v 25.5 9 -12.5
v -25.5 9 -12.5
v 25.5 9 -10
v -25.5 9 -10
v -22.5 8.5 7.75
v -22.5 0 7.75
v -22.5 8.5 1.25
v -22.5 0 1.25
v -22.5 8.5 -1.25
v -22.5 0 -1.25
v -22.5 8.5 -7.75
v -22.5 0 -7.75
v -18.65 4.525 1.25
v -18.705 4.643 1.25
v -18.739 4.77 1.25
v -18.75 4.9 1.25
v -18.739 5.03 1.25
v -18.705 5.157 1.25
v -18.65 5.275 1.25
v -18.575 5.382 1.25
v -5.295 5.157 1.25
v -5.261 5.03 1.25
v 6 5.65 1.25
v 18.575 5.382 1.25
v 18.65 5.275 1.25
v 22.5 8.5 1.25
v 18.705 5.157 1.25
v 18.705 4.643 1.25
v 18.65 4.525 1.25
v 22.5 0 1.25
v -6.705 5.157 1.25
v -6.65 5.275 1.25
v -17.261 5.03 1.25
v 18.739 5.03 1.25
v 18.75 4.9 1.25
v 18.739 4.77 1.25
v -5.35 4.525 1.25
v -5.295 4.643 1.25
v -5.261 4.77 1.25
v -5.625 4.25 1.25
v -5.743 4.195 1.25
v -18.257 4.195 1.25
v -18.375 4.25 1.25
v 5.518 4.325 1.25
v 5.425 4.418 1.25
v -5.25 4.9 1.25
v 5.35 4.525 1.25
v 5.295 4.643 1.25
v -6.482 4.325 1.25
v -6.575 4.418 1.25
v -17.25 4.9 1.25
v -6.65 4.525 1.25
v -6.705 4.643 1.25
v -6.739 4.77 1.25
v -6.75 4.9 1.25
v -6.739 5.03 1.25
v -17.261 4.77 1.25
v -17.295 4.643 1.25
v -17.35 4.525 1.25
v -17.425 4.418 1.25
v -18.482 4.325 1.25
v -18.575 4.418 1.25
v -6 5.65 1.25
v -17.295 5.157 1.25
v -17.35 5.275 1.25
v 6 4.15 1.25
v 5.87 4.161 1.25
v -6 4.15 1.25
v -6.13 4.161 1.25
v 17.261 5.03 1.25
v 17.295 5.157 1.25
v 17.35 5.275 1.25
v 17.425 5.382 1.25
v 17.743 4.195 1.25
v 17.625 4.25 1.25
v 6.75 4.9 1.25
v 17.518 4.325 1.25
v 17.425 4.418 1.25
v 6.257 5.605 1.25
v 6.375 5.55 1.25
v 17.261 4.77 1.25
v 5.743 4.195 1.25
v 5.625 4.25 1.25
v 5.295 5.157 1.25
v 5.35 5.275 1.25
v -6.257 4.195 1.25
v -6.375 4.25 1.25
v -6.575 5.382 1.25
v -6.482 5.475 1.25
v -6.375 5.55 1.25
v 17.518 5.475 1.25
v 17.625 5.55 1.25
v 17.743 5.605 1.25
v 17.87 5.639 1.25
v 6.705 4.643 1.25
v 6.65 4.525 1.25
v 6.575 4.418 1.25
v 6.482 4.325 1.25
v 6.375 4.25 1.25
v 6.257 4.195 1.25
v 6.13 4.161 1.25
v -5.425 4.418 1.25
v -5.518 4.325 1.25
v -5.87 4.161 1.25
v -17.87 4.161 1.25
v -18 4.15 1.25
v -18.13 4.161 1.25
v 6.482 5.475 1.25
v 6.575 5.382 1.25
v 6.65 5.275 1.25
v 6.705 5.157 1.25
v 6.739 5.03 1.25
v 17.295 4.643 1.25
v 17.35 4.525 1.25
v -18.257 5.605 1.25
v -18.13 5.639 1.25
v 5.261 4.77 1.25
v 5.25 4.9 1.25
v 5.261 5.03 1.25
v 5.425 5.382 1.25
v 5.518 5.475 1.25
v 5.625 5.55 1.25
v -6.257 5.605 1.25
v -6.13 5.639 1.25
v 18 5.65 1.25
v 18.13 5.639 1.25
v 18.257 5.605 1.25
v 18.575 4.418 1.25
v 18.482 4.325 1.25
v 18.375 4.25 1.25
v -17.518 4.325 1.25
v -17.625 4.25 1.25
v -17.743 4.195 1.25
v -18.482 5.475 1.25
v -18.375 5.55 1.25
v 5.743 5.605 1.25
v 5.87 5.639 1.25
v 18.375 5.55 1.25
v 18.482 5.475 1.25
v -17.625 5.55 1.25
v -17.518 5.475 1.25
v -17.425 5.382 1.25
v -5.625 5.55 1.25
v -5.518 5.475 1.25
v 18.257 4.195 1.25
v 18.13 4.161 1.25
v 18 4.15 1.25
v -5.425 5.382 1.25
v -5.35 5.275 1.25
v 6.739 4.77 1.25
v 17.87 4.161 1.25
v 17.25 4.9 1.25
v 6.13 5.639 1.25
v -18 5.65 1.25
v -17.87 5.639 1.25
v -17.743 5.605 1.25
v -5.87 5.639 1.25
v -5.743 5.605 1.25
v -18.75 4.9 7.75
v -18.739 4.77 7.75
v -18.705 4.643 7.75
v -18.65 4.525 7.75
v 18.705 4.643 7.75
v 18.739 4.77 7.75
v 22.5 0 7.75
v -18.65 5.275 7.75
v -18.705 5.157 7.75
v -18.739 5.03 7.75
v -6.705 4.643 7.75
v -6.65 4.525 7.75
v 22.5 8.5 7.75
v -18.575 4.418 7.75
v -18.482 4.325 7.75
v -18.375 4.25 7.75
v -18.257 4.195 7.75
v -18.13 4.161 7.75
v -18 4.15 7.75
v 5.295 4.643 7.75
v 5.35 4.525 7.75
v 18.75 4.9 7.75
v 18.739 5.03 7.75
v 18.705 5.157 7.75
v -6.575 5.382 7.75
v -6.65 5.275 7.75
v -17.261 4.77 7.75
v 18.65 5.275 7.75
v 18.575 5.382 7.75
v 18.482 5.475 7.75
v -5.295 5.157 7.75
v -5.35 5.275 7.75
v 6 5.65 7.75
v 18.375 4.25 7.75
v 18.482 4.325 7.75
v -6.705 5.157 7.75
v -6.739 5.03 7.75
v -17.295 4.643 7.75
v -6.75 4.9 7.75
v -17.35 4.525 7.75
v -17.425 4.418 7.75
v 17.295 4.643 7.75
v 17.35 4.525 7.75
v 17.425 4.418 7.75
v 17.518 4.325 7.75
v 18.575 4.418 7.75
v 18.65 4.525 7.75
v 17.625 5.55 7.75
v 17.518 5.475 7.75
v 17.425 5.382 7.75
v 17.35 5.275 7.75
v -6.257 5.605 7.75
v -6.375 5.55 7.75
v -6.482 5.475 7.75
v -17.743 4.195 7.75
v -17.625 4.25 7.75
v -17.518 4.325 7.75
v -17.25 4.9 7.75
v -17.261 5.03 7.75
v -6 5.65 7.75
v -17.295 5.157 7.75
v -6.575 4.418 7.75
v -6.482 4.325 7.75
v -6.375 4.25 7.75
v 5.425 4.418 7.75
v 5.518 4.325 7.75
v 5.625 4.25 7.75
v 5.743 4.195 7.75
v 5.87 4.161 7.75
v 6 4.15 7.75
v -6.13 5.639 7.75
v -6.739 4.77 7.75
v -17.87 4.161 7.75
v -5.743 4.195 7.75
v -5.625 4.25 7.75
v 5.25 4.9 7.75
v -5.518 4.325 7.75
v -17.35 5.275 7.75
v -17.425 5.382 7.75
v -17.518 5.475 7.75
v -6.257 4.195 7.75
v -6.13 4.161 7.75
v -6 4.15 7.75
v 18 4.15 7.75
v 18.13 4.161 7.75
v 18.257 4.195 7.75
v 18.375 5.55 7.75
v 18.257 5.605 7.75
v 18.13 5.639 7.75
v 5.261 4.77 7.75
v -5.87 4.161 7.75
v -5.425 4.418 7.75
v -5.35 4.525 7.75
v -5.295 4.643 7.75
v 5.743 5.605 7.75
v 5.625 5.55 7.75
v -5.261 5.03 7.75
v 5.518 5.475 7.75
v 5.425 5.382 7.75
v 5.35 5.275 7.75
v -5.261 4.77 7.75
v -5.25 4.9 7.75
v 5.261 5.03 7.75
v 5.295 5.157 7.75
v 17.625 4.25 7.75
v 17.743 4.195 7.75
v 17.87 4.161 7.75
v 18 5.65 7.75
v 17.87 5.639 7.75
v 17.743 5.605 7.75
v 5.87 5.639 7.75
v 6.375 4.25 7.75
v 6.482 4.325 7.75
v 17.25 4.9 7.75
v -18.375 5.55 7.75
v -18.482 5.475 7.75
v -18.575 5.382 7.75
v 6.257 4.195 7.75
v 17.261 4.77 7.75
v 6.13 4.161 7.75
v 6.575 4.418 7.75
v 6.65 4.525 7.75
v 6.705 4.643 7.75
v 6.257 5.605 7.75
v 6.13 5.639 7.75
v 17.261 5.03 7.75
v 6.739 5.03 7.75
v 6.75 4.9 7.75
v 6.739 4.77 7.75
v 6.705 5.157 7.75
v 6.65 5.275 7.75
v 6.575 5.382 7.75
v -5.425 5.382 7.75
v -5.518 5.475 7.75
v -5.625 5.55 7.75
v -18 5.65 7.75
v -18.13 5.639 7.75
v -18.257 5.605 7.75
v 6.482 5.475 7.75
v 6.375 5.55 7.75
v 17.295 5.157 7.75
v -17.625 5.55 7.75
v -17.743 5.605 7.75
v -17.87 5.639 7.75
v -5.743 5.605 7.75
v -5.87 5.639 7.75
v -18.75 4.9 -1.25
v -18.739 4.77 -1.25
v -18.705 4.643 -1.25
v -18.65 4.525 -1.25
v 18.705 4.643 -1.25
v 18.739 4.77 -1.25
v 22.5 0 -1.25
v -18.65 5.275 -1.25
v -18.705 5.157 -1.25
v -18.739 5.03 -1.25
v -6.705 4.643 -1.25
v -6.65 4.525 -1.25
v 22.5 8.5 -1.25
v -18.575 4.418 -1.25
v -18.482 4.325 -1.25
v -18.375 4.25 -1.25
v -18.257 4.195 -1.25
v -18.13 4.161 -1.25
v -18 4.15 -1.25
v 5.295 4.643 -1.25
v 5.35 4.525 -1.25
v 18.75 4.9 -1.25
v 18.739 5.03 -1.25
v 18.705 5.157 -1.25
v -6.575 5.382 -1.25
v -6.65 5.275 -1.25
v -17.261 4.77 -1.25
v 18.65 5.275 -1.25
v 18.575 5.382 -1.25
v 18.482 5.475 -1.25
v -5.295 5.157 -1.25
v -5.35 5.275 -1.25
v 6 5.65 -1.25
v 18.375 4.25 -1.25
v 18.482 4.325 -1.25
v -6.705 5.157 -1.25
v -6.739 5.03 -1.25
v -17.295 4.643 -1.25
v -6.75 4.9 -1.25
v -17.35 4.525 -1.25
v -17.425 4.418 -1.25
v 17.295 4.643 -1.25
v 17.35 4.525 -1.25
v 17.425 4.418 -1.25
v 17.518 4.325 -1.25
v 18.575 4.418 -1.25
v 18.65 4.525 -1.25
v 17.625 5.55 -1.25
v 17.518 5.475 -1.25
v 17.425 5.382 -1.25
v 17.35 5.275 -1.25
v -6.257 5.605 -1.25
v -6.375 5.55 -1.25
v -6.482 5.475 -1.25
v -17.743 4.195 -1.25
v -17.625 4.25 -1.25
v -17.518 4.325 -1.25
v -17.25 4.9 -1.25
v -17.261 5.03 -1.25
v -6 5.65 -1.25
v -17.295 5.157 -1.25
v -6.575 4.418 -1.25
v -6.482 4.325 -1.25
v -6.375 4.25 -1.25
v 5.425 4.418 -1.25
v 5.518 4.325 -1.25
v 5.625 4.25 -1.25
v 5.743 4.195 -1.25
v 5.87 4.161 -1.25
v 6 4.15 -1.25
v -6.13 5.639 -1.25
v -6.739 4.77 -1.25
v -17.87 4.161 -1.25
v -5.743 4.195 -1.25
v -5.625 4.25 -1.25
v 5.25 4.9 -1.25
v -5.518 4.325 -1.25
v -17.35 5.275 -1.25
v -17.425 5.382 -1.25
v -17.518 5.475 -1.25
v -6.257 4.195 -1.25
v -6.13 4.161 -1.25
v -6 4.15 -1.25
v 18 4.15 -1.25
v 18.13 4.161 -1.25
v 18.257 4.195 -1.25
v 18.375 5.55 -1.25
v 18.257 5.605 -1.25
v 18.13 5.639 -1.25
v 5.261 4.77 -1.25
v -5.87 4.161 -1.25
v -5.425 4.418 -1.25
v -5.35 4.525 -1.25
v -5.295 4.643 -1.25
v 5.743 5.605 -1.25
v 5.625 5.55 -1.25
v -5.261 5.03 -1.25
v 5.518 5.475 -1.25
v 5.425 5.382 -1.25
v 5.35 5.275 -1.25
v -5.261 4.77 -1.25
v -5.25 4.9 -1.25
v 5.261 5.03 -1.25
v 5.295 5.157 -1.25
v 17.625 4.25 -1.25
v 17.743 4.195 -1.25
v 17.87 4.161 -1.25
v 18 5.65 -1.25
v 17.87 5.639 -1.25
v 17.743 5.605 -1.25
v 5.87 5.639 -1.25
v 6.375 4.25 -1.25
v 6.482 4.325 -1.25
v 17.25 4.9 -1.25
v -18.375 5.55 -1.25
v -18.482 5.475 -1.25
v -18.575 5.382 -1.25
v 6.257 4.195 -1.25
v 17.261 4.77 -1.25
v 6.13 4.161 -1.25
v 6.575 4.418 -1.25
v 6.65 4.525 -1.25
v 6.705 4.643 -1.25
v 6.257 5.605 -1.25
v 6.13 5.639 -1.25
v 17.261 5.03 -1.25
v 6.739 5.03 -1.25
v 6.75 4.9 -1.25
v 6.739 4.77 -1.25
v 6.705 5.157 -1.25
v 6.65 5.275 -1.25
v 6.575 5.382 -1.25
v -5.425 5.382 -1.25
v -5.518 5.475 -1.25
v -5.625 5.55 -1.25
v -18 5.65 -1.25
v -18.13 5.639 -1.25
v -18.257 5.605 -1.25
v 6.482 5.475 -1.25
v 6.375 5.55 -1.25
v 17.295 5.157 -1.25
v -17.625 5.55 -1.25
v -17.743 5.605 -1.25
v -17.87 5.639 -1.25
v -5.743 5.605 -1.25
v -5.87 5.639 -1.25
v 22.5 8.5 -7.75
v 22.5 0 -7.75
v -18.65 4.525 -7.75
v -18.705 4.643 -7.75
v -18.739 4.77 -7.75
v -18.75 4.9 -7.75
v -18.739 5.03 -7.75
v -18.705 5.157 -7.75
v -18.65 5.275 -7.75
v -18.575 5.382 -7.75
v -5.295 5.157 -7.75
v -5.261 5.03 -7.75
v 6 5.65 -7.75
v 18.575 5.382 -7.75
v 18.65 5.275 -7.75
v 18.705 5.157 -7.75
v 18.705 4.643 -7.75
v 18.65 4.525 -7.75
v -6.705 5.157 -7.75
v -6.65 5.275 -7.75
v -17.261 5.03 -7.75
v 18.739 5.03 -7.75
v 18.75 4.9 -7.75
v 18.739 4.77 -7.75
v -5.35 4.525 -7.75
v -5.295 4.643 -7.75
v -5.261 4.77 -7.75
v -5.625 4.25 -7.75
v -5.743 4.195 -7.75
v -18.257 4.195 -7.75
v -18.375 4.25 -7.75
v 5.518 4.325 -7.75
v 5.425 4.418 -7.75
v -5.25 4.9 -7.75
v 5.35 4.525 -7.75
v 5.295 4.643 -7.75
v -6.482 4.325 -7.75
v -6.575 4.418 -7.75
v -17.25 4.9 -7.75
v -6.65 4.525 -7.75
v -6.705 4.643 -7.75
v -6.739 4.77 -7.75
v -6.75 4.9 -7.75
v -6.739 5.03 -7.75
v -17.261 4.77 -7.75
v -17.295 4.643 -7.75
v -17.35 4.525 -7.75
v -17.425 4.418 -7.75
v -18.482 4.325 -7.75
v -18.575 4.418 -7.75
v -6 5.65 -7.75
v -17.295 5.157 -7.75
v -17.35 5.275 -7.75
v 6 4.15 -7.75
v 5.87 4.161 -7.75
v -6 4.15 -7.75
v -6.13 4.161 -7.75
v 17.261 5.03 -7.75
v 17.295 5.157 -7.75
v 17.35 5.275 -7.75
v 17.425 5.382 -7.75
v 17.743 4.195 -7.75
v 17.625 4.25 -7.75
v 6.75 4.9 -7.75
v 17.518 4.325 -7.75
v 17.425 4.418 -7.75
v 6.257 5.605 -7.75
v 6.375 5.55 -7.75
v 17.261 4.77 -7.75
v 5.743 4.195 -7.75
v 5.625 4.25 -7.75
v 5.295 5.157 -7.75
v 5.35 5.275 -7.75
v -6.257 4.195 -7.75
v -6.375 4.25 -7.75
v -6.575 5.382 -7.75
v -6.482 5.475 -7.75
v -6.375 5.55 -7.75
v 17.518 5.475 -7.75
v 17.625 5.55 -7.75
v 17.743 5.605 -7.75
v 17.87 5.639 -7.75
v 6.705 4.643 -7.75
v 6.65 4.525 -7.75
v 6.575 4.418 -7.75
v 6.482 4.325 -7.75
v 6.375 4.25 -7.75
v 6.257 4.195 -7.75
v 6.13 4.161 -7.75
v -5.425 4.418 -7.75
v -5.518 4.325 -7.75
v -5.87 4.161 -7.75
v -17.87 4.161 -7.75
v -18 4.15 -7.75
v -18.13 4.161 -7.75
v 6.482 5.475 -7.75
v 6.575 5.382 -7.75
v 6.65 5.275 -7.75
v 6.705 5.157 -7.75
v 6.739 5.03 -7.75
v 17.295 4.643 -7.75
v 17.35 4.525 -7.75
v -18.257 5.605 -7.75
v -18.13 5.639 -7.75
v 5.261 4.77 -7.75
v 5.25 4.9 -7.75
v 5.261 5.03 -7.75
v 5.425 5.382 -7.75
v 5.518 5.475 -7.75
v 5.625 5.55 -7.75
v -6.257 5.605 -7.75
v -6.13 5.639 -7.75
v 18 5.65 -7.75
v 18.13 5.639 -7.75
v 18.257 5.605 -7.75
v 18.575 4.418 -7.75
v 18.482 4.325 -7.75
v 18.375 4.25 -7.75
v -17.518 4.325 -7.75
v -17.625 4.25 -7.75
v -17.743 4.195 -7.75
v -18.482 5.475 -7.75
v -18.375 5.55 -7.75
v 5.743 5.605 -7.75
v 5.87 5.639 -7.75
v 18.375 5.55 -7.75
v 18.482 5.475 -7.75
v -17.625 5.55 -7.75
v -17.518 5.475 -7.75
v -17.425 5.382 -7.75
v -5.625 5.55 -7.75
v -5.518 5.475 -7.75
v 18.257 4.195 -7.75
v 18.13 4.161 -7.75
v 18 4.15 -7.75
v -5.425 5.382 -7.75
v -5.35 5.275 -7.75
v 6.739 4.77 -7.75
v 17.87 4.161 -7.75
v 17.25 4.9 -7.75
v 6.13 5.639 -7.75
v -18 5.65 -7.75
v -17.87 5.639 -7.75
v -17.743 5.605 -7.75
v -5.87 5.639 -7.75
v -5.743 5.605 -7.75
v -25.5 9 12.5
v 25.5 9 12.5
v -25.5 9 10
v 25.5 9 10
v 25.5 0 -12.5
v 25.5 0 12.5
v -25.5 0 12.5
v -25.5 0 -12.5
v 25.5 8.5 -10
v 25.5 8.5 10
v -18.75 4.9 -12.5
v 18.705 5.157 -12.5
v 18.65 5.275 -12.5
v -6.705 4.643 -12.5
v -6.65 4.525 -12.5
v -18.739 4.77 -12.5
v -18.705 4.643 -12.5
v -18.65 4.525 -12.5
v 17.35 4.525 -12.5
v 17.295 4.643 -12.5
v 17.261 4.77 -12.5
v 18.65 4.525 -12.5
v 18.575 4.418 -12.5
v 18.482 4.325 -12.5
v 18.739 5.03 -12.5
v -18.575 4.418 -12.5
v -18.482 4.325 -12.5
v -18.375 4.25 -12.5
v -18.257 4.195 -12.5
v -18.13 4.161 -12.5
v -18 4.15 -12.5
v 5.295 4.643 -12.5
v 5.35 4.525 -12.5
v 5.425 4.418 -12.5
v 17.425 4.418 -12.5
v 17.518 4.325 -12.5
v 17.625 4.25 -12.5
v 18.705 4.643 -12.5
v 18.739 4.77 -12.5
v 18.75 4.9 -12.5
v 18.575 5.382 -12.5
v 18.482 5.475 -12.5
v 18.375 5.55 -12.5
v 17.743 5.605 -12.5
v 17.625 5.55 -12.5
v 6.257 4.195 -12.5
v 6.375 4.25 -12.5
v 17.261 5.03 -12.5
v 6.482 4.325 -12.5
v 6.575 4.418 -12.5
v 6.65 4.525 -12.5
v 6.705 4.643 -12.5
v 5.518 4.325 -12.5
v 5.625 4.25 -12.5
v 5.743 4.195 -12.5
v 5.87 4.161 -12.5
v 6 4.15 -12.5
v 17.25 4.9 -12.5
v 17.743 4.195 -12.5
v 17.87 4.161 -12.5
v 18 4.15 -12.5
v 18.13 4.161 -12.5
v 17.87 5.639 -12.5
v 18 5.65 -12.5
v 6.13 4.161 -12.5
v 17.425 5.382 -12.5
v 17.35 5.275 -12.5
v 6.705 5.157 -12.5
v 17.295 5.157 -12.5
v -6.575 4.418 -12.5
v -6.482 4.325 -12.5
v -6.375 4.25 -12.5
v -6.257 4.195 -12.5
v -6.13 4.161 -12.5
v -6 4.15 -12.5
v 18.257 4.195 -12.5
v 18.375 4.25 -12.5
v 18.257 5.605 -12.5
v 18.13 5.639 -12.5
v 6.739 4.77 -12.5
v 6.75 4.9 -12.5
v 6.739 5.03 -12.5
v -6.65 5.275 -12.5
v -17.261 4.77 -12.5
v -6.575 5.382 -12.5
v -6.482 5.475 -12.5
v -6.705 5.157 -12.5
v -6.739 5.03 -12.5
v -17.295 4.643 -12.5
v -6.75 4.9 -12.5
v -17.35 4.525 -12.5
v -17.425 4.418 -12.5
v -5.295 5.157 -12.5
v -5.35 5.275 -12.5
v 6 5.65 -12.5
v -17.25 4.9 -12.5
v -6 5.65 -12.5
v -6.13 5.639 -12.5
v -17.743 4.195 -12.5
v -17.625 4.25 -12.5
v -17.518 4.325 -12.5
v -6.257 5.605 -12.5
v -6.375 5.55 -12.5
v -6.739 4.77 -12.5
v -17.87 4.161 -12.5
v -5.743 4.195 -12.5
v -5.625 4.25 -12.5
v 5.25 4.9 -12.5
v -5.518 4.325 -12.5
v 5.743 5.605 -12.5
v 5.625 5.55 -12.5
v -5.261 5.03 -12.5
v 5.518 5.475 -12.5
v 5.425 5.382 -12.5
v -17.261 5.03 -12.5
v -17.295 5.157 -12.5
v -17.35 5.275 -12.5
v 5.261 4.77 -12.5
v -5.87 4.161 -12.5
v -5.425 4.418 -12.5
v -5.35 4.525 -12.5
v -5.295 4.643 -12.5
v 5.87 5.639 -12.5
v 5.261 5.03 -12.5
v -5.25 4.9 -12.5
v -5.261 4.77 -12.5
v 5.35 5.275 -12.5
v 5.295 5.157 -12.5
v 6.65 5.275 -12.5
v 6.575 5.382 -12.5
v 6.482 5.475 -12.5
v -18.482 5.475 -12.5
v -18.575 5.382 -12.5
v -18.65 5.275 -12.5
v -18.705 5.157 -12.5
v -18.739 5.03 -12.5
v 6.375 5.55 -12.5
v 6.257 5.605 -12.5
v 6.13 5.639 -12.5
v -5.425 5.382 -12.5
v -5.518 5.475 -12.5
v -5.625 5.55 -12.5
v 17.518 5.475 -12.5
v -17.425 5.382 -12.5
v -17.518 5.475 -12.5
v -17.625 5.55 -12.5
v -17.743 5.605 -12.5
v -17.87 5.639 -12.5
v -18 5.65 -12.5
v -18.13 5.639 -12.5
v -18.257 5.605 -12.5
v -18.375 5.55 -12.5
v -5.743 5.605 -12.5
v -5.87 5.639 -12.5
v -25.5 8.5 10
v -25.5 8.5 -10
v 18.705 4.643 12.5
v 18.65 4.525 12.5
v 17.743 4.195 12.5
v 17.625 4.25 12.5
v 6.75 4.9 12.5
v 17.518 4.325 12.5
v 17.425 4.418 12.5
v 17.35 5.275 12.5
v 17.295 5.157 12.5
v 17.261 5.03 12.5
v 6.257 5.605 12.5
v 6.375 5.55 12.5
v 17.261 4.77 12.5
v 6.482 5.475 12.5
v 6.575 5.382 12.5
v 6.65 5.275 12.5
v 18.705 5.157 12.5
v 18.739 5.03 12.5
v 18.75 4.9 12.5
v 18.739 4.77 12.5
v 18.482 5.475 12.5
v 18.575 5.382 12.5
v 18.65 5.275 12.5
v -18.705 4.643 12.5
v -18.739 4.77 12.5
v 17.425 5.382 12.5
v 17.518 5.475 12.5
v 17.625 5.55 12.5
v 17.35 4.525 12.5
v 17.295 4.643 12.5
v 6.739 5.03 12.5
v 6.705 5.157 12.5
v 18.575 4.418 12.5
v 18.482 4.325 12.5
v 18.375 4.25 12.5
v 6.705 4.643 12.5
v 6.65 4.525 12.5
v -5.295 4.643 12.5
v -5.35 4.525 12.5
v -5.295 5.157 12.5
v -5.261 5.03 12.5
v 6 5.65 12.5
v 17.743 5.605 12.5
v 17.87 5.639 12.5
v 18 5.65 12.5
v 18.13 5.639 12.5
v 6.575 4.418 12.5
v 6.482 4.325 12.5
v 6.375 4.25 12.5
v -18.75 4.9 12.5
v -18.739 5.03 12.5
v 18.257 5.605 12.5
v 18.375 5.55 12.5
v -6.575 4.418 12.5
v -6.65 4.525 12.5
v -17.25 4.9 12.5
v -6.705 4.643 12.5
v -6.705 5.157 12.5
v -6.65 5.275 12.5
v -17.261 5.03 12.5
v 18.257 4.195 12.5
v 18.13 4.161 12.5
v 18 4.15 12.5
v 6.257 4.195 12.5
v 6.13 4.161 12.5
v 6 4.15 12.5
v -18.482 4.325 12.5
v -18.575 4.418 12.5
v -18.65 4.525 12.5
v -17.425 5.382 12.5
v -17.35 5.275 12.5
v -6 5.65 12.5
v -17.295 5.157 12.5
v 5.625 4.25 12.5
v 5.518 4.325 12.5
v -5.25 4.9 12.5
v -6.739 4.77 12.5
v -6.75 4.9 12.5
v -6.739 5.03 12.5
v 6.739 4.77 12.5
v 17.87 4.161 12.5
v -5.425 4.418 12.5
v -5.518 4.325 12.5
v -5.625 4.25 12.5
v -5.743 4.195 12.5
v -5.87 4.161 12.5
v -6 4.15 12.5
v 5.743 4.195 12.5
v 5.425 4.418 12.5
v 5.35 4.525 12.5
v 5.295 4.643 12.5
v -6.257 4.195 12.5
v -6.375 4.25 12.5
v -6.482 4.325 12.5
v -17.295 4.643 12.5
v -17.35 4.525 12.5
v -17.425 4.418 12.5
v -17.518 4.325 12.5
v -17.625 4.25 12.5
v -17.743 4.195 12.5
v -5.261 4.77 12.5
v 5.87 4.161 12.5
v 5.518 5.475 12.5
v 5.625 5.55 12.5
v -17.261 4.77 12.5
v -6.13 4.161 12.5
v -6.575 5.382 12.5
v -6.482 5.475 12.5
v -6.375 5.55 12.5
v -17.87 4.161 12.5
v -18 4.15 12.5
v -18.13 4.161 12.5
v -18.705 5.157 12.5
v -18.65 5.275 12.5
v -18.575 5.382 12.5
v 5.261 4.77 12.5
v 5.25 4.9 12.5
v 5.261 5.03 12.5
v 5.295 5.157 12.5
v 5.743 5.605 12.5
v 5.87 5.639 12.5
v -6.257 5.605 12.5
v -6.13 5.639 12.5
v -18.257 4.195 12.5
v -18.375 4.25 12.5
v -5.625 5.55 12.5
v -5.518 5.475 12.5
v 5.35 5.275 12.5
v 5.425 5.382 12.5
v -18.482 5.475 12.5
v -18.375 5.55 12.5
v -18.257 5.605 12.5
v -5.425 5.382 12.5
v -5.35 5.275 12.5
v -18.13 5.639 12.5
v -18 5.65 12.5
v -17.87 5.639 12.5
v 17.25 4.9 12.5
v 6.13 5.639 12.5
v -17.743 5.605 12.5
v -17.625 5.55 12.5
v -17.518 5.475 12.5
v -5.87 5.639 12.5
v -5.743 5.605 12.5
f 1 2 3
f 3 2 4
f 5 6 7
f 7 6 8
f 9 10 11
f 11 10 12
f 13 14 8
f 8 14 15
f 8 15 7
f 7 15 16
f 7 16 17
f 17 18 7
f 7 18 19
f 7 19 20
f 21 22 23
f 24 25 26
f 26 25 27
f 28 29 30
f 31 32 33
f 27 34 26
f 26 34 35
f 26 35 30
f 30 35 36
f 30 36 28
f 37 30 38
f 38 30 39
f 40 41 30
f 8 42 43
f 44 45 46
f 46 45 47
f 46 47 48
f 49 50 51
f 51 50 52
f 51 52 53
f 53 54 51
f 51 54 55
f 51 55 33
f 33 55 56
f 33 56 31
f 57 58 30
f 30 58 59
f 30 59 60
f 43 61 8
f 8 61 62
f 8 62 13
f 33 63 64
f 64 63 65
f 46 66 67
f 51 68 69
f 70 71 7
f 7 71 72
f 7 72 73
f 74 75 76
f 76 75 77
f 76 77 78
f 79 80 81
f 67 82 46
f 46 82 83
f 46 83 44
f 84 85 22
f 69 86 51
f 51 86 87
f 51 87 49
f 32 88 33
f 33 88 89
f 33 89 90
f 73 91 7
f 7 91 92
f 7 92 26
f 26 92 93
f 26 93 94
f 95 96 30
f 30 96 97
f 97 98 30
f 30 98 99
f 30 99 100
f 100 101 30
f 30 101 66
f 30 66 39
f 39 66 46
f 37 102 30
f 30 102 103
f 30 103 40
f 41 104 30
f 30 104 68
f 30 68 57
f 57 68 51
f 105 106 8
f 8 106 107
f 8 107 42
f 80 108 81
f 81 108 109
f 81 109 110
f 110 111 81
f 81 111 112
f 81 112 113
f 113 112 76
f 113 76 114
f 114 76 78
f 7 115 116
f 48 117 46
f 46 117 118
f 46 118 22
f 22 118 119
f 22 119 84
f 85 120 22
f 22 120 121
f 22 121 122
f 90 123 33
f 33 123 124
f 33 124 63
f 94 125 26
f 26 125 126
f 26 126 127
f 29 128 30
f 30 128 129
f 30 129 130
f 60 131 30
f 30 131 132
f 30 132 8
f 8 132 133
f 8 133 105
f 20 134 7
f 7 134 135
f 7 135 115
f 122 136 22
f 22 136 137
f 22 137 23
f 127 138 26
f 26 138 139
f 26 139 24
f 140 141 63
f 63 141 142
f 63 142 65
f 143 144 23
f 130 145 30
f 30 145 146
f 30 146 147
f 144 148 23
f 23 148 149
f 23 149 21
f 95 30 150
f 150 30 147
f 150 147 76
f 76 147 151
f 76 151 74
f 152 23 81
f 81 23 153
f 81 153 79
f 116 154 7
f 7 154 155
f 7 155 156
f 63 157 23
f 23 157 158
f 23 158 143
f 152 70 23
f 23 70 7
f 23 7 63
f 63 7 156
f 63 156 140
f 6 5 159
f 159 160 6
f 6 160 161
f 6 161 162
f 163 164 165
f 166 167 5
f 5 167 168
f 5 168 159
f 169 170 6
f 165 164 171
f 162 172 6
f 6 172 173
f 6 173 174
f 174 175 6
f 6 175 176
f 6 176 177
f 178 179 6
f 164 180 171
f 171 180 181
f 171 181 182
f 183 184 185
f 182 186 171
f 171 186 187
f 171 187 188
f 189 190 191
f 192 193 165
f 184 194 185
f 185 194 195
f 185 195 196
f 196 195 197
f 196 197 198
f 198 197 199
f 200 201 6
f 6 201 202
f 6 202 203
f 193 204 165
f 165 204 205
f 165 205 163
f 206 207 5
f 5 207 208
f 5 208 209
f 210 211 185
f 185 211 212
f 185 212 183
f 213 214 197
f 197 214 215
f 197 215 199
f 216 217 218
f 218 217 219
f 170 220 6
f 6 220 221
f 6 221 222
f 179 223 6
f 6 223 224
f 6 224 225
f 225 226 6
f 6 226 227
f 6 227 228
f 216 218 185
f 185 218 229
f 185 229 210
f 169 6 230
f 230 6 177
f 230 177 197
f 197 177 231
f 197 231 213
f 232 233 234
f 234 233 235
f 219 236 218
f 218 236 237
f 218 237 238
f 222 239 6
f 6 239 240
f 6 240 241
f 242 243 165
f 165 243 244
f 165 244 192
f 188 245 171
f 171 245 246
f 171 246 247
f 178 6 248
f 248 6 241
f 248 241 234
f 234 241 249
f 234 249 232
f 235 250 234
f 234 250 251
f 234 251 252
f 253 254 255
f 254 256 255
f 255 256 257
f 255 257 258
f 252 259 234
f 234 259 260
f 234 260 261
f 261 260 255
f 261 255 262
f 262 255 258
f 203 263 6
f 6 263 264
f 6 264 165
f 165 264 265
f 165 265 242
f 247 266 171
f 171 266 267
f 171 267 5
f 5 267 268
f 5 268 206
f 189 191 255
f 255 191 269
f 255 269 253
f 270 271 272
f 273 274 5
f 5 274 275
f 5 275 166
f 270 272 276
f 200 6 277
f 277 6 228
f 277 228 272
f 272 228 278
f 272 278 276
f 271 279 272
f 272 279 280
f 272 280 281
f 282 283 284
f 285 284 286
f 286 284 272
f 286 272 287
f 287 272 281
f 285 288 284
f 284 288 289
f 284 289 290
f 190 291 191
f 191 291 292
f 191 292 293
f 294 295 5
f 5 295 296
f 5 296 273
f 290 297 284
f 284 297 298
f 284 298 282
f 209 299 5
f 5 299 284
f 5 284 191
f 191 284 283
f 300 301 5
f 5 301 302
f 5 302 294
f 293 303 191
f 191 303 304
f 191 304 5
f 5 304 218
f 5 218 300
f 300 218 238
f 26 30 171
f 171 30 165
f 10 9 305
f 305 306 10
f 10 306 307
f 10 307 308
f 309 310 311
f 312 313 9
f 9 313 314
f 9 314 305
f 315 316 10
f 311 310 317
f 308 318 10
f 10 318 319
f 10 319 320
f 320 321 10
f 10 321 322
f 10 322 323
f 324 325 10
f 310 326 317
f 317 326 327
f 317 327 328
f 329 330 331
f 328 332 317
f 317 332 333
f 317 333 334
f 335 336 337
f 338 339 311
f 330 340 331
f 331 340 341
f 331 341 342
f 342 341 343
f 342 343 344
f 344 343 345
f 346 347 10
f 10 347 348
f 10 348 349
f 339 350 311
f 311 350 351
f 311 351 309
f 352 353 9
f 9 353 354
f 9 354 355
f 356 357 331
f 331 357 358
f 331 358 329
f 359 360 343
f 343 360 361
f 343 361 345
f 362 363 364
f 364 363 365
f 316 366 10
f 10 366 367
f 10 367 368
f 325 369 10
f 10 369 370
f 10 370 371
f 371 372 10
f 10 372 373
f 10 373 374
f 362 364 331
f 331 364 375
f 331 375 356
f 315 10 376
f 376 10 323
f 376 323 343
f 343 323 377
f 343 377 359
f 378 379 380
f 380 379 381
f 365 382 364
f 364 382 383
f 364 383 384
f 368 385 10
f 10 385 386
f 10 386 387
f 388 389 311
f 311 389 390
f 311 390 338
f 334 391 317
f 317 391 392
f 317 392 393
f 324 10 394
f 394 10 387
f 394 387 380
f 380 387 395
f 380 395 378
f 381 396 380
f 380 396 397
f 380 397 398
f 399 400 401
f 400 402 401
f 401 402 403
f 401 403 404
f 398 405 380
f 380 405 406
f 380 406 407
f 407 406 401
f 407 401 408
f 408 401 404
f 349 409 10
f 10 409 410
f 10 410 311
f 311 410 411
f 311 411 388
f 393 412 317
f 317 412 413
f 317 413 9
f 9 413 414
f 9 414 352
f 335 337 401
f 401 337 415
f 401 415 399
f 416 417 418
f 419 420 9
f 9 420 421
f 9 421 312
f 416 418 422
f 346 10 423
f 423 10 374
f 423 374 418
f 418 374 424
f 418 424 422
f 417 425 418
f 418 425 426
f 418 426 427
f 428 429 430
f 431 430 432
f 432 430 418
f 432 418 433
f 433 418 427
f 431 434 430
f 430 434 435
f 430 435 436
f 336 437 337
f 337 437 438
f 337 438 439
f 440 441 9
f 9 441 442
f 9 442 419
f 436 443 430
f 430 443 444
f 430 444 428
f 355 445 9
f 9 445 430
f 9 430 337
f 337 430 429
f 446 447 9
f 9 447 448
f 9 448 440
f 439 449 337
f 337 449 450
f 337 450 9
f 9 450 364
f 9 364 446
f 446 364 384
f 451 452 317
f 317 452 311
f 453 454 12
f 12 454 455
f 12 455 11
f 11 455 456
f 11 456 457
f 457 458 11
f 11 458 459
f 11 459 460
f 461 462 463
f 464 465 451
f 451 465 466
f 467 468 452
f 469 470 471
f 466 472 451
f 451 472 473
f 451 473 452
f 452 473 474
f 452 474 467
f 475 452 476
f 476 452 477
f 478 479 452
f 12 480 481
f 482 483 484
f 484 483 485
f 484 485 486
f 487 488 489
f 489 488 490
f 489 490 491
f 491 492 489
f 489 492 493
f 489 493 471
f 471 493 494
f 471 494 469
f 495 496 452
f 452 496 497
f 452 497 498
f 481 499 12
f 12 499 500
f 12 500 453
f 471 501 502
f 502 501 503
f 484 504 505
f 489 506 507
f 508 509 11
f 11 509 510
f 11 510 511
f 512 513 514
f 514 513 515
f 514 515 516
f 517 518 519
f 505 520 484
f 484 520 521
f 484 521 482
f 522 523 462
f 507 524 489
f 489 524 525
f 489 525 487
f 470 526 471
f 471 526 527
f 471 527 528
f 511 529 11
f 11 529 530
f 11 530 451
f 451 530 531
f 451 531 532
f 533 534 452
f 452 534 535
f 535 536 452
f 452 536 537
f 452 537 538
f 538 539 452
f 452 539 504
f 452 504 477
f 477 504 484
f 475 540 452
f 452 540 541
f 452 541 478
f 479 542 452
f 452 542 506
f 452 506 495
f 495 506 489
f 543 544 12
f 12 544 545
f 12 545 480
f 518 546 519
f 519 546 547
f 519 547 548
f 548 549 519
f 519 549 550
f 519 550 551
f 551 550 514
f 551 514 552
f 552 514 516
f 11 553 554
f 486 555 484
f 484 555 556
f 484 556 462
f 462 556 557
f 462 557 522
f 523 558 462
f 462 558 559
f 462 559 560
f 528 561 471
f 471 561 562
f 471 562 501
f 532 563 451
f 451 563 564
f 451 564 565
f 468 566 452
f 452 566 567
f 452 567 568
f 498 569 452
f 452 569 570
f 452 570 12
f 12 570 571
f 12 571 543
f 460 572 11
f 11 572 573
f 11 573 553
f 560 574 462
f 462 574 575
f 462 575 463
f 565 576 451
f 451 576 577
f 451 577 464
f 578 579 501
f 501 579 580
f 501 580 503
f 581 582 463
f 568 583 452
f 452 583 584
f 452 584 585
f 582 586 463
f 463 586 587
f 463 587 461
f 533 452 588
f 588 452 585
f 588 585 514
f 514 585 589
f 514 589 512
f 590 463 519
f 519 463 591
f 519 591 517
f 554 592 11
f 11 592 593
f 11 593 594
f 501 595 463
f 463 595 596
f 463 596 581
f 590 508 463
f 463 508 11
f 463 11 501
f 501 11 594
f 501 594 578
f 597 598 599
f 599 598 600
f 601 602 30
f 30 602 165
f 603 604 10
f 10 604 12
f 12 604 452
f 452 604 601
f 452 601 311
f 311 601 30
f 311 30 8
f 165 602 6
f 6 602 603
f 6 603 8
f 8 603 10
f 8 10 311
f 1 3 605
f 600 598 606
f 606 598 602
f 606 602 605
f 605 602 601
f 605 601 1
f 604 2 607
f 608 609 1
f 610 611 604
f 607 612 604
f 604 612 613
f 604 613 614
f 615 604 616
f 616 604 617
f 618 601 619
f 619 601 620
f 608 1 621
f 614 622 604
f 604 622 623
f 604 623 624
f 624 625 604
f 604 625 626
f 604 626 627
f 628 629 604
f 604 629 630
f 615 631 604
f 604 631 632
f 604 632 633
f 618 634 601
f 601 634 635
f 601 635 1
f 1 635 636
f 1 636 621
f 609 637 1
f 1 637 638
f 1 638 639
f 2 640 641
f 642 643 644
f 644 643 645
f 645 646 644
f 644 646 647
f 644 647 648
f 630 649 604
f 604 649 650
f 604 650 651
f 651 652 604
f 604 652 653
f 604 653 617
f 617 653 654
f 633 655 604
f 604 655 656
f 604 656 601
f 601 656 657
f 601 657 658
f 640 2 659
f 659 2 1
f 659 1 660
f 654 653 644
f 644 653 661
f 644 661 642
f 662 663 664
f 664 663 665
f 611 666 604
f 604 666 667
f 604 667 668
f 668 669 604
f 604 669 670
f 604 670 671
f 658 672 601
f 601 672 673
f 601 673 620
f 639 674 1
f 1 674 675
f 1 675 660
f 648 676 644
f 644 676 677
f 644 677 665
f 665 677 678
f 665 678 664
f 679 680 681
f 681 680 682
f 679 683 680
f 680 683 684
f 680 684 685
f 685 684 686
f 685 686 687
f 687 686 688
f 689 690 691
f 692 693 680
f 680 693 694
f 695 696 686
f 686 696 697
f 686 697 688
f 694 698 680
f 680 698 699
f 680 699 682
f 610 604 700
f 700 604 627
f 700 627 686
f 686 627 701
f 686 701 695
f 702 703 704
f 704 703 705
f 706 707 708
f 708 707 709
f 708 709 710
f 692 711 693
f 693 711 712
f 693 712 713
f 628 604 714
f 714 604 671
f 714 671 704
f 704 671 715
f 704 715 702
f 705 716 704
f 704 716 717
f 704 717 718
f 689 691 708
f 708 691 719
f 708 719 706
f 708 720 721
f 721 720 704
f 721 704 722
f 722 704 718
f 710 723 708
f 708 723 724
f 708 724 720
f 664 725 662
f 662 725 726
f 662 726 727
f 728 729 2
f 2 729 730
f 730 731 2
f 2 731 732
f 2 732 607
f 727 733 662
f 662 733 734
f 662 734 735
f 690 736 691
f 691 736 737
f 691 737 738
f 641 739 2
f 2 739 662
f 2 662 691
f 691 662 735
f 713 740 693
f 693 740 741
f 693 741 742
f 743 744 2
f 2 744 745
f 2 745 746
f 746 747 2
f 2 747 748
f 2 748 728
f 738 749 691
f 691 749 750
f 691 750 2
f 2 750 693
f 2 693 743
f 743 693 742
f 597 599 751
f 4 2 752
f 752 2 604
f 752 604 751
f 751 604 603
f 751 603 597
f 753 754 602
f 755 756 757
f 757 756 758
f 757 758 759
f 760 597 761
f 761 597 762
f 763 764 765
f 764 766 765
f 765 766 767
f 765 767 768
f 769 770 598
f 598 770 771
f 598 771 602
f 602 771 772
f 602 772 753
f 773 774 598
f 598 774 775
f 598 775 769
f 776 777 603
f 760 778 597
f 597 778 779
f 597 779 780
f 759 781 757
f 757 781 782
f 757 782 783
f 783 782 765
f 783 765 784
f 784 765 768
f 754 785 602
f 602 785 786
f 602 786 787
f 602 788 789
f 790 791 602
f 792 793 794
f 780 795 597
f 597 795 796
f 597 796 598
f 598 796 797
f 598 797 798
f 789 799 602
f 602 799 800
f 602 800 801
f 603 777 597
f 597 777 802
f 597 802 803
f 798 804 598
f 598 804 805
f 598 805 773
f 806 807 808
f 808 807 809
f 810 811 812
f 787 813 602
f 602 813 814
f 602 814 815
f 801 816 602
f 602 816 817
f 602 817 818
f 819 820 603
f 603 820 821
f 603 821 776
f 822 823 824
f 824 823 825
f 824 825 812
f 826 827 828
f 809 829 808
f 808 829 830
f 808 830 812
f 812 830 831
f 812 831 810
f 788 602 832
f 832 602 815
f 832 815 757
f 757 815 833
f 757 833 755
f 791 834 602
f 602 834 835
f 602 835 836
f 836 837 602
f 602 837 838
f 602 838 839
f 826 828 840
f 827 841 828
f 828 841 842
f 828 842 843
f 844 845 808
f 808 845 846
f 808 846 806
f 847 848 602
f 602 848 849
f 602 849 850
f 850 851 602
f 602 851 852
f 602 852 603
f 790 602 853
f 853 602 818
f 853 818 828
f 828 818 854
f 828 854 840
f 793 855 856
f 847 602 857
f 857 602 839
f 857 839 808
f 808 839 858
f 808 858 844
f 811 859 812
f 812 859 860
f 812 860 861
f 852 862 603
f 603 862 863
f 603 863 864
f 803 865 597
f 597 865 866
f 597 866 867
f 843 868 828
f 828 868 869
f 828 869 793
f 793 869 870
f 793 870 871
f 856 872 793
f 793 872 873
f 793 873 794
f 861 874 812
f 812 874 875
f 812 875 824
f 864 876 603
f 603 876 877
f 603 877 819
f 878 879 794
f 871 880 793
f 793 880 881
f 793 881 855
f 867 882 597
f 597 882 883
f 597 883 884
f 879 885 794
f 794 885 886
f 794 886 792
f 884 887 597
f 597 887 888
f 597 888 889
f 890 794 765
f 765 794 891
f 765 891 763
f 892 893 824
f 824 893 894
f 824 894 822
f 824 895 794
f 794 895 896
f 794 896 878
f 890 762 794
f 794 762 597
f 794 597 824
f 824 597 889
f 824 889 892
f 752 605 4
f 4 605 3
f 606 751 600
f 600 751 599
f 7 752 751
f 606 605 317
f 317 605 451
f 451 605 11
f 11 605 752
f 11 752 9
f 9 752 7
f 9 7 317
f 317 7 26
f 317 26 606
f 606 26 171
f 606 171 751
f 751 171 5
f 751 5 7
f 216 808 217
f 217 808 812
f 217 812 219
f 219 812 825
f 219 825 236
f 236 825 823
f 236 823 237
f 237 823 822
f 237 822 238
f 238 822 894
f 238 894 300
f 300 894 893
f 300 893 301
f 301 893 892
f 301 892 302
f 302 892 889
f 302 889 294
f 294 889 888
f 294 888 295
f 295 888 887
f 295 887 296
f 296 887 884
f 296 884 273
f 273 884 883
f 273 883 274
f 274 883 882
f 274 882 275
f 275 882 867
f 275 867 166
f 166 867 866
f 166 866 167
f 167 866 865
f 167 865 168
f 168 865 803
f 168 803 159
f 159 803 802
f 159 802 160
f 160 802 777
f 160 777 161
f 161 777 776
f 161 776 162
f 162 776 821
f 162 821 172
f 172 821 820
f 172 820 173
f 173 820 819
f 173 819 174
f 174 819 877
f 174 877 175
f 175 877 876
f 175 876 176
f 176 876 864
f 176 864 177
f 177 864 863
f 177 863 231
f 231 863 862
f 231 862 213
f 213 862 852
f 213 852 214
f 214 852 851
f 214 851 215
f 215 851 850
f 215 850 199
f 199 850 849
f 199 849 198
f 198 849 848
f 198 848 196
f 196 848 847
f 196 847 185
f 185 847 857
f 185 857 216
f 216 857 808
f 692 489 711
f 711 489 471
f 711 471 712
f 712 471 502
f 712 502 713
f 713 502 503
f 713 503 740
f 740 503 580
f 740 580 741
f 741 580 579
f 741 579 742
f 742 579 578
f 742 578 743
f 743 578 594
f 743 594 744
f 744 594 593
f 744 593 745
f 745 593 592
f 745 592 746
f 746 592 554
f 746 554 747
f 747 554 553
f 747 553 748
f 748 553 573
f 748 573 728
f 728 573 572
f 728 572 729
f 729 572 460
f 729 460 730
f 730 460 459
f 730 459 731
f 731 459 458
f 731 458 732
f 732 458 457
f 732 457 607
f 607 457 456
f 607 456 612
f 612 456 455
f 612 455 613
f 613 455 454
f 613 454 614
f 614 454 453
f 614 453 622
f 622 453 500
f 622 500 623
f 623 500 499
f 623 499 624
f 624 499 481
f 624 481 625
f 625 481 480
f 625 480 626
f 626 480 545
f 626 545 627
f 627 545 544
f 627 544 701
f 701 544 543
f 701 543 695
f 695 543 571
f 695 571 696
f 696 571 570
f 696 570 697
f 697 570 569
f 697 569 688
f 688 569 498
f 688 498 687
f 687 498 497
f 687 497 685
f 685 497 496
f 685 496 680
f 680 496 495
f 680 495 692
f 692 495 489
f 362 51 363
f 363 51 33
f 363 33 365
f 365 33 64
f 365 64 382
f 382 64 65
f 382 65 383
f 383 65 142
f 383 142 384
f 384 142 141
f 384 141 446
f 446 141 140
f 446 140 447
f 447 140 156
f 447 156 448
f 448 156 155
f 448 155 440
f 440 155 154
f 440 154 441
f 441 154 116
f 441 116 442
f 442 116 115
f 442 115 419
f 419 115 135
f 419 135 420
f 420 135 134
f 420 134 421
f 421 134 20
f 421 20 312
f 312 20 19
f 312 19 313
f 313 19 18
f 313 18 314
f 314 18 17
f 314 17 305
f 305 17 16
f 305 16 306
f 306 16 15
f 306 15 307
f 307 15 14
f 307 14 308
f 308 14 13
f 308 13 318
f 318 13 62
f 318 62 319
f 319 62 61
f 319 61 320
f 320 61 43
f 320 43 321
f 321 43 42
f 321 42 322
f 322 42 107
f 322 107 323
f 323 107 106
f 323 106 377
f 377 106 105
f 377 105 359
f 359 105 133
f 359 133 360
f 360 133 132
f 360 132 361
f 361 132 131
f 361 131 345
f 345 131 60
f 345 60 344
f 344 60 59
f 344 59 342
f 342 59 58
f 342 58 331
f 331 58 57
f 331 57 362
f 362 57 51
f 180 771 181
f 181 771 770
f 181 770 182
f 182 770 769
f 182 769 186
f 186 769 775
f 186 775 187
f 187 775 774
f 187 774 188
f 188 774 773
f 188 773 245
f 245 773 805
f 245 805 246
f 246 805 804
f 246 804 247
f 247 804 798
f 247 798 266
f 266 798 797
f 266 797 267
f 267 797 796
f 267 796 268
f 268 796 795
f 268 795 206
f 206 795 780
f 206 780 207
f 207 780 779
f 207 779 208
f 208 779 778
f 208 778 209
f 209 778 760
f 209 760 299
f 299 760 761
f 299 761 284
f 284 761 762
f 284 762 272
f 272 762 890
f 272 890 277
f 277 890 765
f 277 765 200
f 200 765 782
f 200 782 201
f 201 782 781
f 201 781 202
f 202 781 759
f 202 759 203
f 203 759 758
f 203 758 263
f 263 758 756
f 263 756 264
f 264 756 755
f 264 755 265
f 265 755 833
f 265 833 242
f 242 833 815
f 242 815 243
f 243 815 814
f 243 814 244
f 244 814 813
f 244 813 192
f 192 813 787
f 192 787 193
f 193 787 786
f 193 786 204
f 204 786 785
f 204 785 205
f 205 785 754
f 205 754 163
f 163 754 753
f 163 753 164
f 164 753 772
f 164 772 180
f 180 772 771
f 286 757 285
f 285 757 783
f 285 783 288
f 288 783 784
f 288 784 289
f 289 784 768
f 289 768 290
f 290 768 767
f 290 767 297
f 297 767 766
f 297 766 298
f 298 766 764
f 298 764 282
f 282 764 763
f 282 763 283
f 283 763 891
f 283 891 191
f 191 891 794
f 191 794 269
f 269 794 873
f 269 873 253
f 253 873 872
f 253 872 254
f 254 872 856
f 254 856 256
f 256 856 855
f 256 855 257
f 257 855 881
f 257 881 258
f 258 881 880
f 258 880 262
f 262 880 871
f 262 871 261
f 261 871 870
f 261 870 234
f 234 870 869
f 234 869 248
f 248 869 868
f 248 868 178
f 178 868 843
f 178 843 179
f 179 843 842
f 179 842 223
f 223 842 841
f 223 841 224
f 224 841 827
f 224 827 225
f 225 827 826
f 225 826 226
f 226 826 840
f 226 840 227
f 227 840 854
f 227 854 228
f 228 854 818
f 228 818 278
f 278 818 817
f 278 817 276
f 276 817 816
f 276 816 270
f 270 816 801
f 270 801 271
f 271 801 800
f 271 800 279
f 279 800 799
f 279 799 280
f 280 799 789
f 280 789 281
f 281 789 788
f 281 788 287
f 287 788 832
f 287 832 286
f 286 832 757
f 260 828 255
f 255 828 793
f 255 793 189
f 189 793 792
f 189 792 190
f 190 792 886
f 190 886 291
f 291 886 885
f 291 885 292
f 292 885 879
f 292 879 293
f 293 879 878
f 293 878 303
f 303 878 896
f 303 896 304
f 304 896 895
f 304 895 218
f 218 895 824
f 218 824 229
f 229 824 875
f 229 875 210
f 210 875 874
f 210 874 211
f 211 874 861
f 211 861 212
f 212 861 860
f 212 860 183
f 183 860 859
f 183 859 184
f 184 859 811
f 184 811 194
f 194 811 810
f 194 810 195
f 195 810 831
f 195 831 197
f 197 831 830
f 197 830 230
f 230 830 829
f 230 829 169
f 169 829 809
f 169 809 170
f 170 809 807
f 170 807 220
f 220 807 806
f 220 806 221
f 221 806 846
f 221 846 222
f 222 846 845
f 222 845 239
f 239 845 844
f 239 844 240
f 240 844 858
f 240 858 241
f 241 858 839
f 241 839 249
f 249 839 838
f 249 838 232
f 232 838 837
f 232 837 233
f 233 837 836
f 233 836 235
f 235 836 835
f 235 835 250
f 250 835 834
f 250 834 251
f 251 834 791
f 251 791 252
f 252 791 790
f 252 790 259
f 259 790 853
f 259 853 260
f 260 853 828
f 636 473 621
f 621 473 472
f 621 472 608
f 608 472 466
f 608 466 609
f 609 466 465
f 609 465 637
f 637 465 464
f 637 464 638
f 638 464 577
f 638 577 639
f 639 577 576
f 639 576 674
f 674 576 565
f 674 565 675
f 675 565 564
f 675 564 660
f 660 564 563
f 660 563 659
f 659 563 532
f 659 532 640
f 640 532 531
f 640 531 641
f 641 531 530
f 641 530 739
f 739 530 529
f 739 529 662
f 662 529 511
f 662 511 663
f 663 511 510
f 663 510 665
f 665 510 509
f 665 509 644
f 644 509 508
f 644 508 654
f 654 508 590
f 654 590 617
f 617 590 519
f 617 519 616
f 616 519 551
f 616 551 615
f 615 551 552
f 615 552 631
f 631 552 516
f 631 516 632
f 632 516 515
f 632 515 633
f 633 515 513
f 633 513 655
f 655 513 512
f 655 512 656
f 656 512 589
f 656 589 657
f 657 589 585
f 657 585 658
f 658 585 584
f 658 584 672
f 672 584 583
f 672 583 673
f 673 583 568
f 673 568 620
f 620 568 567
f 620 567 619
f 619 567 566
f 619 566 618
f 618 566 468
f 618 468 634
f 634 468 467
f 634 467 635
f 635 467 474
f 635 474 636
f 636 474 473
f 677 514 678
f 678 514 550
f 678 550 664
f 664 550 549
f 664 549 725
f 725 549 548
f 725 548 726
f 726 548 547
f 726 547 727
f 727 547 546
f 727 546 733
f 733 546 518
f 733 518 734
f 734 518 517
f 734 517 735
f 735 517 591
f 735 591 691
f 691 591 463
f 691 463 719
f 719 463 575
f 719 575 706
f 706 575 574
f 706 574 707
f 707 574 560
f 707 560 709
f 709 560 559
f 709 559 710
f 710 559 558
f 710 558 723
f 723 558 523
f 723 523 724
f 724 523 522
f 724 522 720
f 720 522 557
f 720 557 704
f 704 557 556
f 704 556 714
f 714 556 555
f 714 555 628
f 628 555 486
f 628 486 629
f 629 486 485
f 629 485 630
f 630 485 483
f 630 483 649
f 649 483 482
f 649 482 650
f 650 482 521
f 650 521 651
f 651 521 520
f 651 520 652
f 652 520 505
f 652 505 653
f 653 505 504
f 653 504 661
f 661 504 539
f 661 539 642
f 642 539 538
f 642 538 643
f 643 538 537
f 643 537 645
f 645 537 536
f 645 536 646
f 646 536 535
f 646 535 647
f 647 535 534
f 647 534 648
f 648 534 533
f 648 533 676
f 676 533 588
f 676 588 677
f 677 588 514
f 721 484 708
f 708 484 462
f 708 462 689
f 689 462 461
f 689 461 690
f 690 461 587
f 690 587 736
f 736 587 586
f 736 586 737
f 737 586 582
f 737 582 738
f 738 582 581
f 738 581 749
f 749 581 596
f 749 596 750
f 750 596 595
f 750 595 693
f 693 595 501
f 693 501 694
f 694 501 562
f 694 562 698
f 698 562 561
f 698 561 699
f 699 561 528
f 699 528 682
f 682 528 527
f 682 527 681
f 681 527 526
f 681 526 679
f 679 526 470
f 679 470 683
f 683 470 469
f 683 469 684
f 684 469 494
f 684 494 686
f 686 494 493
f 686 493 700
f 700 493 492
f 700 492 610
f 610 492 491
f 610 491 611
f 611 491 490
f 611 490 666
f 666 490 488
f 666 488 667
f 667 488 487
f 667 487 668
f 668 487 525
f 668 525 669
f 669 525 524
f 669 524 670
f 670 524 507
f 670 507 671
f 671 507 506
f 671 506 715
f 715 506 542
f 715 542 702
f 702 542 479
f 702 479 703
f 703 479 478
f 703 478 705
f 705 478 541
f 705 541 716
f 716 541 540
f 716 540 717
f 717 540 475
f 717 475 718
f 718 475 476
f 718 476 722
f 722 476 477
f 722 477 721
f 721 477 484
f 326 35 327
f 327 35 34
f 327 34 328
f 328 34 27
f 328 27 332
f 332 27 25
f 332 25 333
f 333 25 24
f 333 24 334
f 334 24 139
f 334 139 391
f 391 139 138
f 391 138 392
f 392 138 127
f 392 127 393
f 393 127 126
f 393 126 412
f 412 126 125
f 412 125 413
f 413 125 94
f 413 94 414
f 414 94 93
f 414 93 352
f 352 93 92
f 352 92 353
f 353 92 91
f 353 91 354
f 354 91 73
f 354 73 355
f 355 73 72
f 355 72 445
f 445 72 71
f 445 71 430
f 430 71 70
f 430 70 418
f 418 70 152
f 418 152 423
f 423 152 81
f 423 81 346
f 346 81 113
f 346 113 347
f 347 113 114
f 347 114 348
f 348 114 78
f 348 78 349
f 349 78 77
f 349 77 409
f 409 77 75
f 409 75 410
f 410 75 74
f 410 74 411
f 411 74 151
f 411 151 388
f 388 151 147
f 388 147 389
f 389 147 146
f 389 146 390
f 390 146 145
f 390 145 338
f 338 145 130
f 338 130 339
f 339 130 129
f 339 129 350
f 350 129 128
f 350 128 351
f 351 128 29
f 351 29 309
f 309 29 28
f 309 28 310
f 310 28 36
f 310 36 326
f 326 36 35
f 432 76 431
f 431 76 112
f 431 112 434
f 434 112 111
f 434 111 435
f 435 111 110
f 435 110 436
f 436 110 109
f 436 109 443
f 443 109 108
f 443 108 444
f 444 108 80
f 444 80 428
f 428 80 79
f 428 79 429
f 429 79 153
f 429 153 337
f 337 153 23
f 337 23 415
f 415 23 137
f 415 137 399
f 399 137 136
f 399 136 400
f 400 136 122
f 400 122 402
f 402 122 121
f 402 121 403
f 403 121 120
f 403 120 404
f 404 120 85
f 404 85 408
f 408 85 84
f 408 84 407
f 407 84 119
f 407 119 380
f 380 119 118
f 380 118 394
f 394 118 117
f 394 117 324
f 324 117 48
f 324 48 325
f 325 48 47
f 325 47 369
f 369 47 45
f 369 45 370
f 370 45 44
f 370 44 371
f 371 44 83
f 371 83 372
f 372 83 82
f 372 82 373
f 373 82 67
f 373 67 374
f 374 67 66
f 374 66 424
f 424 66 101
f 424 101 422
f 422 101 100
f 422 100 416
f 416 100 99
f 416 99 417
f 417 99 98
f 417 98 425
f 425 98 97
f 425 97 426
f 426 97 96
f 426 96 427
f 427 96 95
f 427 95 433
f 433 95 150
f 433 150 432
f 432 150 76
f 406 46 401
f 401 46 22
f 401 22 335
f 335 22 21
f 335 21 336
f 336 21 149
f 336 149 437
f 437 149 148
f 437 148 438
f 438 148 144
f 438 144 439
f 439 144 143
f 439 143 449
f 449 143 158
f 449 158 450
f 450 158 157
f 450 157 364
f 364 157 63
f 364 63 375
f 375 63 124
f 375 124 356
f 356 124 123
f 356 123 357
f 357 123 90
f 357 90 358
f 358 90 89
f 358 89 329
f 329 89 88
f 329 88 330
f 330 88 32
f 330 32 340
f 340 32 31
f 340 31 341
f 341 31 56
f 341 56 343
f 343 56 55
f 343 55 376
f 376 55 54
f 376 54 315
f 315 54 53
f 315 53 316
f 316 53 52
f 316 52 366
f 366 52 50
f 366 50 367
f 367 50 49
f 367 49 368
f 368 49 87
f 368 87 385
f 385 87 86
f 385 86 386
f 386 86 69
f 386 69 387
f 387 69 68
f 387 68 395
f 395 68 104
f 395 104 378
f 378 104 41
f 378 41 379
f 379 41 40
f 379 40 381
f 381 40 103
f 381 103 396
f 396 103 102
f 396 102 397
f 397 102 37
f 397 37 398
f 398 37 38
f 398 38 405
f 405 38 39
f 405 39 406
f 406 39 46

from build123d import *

# Parameters (mm, degrees)
SKETCH_1_W             = 51
SKETCH_1_H             = 25
SKETCH_1_W_2           = 9
SKETCH_1_H_2           = 6.5
EXTRUDE_1_DEPTH        = 9
SKETCH_2_W             = 51
SKETCH_2_H             = 20
CUT_EXTRUDE_1_DEPTH    = 0.5
SKETCH_3_R             = 0.75
CUT_EXTRUDE_2_DEPTH    = 31.336652749
PATTERN_LINEAR_1_COUNT = 4
PATTERN_LINEAR_1_PITCH = 12
SKETCH_4_W             = 45
SKETCH_4_H             = 6.5
CUT_EXTRUDE_3_DEPTH    = 30.643717716


with BuildPart() as part:
    # 草图1 → 凸台-拉伸1 (new body)
    with BuildSketch(Plane(origin=(0, 0, 0), x_dir=(1, 0, 0), z_dir=(0, 1, 0))):
        Rectangle(SKETCH_1_W, SKETCH_1_H)
        with Locations((-18, 4.5)):
            Rectangle(SKETCH_1_W_2, SKETCH_1_H_2, mode=Mode.SUBTRACT)
        with Locations((-18, -4.5)):
            Rectangle(SKETCH_1_W_2, SKETCH_1_H_2, mode=Mode.SUBTRACT)
        with Locations((-6, 4.5)):
            Rectangle(SKETCH_1_W_2, SKETCH_1_H_2, mode=Mode.SUBTRACT)
        with Locations((-6, -4.5)):
            Rectangle(SKETCH_1_W_2, SKETCH_1_H_2, mode=Mode.SUBTRACT)
        with Locations((6, 4.5)):
            Rectangle(SKETCH_1_W_2, SKETCH_1_H_2, mode=Mode.SUBTRACT)
        with Locations((6, -4.5)):
            Rectangle(SKETCH_1_W_2, SKETCH_1_H_2, mode=Mode.SUBTRACT)
        with Locations((18, 4.5)):
            Rectangle(SKETCH_1_W_2, SKETCH_1_H_2, mode=Mode.SUBTRACT)
        with Locations((18, -4.5)):
            Rectangle(SKETCH_1_W_2, SKETCH_1_H_2, mode=Mode.SUBTRACT)
    extrude(amount=EXTRUDE_1_DEPTH)

    # 草图2 → 切除-拉伸1 (cut)
    with BuildSketch(Plane(origin=(0, 9, 0), x_dir=(1, 0, 0), z_dir=(0, 1, 0))):
        Rectangle(SKETCH_2_W, SKETCH_2_H)
    extrude(amount=-CUT_EXTRUDE_1_DEPTH, mode=Mode.SUBTRACT)

    # 草图3 → 切除-拉伸2 (cut, symmetric)
    with BuildSketch(Plane.XY.offset(1.25)):
        with Locations((-18, 4.9)):
            Circle(SKETCH_3_R)
    cut_extrude_2 = extrude(amount=CUT_EXTRUDE_2_DEPTH, both=True, mode=Mode.SUBTRACT)

    # 阵列(线性)1: 切除-拉伸2 ×4
    with Locations(*[(i * PATTERN_LINEAR_1_PITCH, 0, 0) for i in range(1, PATTERN_LINEAR_1_COUNT)]):
        add(cut_extrude_2, mode=Mode.SUBTRACT)

    # 草图4 → 切除-拉伸3 (cut, through all)
    with BuildSketch(Plane(origin=(0, 8.5, 0), x_dir=(1, 0, 0), z_dir=(0, 1, 0))):
        with Locations((0, 4.5)):
            Rectangle(SKETCH_4_W, SKETCH_4_H)
        with Locations((0, -4.5)):
            Rectangle(SKETCH_4_W, SKETCH_4_H)
    extrude(amount=-CUT_EXTRUDE_3_DEPTH, mode=Mode.SUBTRACT)


solid = part.part
